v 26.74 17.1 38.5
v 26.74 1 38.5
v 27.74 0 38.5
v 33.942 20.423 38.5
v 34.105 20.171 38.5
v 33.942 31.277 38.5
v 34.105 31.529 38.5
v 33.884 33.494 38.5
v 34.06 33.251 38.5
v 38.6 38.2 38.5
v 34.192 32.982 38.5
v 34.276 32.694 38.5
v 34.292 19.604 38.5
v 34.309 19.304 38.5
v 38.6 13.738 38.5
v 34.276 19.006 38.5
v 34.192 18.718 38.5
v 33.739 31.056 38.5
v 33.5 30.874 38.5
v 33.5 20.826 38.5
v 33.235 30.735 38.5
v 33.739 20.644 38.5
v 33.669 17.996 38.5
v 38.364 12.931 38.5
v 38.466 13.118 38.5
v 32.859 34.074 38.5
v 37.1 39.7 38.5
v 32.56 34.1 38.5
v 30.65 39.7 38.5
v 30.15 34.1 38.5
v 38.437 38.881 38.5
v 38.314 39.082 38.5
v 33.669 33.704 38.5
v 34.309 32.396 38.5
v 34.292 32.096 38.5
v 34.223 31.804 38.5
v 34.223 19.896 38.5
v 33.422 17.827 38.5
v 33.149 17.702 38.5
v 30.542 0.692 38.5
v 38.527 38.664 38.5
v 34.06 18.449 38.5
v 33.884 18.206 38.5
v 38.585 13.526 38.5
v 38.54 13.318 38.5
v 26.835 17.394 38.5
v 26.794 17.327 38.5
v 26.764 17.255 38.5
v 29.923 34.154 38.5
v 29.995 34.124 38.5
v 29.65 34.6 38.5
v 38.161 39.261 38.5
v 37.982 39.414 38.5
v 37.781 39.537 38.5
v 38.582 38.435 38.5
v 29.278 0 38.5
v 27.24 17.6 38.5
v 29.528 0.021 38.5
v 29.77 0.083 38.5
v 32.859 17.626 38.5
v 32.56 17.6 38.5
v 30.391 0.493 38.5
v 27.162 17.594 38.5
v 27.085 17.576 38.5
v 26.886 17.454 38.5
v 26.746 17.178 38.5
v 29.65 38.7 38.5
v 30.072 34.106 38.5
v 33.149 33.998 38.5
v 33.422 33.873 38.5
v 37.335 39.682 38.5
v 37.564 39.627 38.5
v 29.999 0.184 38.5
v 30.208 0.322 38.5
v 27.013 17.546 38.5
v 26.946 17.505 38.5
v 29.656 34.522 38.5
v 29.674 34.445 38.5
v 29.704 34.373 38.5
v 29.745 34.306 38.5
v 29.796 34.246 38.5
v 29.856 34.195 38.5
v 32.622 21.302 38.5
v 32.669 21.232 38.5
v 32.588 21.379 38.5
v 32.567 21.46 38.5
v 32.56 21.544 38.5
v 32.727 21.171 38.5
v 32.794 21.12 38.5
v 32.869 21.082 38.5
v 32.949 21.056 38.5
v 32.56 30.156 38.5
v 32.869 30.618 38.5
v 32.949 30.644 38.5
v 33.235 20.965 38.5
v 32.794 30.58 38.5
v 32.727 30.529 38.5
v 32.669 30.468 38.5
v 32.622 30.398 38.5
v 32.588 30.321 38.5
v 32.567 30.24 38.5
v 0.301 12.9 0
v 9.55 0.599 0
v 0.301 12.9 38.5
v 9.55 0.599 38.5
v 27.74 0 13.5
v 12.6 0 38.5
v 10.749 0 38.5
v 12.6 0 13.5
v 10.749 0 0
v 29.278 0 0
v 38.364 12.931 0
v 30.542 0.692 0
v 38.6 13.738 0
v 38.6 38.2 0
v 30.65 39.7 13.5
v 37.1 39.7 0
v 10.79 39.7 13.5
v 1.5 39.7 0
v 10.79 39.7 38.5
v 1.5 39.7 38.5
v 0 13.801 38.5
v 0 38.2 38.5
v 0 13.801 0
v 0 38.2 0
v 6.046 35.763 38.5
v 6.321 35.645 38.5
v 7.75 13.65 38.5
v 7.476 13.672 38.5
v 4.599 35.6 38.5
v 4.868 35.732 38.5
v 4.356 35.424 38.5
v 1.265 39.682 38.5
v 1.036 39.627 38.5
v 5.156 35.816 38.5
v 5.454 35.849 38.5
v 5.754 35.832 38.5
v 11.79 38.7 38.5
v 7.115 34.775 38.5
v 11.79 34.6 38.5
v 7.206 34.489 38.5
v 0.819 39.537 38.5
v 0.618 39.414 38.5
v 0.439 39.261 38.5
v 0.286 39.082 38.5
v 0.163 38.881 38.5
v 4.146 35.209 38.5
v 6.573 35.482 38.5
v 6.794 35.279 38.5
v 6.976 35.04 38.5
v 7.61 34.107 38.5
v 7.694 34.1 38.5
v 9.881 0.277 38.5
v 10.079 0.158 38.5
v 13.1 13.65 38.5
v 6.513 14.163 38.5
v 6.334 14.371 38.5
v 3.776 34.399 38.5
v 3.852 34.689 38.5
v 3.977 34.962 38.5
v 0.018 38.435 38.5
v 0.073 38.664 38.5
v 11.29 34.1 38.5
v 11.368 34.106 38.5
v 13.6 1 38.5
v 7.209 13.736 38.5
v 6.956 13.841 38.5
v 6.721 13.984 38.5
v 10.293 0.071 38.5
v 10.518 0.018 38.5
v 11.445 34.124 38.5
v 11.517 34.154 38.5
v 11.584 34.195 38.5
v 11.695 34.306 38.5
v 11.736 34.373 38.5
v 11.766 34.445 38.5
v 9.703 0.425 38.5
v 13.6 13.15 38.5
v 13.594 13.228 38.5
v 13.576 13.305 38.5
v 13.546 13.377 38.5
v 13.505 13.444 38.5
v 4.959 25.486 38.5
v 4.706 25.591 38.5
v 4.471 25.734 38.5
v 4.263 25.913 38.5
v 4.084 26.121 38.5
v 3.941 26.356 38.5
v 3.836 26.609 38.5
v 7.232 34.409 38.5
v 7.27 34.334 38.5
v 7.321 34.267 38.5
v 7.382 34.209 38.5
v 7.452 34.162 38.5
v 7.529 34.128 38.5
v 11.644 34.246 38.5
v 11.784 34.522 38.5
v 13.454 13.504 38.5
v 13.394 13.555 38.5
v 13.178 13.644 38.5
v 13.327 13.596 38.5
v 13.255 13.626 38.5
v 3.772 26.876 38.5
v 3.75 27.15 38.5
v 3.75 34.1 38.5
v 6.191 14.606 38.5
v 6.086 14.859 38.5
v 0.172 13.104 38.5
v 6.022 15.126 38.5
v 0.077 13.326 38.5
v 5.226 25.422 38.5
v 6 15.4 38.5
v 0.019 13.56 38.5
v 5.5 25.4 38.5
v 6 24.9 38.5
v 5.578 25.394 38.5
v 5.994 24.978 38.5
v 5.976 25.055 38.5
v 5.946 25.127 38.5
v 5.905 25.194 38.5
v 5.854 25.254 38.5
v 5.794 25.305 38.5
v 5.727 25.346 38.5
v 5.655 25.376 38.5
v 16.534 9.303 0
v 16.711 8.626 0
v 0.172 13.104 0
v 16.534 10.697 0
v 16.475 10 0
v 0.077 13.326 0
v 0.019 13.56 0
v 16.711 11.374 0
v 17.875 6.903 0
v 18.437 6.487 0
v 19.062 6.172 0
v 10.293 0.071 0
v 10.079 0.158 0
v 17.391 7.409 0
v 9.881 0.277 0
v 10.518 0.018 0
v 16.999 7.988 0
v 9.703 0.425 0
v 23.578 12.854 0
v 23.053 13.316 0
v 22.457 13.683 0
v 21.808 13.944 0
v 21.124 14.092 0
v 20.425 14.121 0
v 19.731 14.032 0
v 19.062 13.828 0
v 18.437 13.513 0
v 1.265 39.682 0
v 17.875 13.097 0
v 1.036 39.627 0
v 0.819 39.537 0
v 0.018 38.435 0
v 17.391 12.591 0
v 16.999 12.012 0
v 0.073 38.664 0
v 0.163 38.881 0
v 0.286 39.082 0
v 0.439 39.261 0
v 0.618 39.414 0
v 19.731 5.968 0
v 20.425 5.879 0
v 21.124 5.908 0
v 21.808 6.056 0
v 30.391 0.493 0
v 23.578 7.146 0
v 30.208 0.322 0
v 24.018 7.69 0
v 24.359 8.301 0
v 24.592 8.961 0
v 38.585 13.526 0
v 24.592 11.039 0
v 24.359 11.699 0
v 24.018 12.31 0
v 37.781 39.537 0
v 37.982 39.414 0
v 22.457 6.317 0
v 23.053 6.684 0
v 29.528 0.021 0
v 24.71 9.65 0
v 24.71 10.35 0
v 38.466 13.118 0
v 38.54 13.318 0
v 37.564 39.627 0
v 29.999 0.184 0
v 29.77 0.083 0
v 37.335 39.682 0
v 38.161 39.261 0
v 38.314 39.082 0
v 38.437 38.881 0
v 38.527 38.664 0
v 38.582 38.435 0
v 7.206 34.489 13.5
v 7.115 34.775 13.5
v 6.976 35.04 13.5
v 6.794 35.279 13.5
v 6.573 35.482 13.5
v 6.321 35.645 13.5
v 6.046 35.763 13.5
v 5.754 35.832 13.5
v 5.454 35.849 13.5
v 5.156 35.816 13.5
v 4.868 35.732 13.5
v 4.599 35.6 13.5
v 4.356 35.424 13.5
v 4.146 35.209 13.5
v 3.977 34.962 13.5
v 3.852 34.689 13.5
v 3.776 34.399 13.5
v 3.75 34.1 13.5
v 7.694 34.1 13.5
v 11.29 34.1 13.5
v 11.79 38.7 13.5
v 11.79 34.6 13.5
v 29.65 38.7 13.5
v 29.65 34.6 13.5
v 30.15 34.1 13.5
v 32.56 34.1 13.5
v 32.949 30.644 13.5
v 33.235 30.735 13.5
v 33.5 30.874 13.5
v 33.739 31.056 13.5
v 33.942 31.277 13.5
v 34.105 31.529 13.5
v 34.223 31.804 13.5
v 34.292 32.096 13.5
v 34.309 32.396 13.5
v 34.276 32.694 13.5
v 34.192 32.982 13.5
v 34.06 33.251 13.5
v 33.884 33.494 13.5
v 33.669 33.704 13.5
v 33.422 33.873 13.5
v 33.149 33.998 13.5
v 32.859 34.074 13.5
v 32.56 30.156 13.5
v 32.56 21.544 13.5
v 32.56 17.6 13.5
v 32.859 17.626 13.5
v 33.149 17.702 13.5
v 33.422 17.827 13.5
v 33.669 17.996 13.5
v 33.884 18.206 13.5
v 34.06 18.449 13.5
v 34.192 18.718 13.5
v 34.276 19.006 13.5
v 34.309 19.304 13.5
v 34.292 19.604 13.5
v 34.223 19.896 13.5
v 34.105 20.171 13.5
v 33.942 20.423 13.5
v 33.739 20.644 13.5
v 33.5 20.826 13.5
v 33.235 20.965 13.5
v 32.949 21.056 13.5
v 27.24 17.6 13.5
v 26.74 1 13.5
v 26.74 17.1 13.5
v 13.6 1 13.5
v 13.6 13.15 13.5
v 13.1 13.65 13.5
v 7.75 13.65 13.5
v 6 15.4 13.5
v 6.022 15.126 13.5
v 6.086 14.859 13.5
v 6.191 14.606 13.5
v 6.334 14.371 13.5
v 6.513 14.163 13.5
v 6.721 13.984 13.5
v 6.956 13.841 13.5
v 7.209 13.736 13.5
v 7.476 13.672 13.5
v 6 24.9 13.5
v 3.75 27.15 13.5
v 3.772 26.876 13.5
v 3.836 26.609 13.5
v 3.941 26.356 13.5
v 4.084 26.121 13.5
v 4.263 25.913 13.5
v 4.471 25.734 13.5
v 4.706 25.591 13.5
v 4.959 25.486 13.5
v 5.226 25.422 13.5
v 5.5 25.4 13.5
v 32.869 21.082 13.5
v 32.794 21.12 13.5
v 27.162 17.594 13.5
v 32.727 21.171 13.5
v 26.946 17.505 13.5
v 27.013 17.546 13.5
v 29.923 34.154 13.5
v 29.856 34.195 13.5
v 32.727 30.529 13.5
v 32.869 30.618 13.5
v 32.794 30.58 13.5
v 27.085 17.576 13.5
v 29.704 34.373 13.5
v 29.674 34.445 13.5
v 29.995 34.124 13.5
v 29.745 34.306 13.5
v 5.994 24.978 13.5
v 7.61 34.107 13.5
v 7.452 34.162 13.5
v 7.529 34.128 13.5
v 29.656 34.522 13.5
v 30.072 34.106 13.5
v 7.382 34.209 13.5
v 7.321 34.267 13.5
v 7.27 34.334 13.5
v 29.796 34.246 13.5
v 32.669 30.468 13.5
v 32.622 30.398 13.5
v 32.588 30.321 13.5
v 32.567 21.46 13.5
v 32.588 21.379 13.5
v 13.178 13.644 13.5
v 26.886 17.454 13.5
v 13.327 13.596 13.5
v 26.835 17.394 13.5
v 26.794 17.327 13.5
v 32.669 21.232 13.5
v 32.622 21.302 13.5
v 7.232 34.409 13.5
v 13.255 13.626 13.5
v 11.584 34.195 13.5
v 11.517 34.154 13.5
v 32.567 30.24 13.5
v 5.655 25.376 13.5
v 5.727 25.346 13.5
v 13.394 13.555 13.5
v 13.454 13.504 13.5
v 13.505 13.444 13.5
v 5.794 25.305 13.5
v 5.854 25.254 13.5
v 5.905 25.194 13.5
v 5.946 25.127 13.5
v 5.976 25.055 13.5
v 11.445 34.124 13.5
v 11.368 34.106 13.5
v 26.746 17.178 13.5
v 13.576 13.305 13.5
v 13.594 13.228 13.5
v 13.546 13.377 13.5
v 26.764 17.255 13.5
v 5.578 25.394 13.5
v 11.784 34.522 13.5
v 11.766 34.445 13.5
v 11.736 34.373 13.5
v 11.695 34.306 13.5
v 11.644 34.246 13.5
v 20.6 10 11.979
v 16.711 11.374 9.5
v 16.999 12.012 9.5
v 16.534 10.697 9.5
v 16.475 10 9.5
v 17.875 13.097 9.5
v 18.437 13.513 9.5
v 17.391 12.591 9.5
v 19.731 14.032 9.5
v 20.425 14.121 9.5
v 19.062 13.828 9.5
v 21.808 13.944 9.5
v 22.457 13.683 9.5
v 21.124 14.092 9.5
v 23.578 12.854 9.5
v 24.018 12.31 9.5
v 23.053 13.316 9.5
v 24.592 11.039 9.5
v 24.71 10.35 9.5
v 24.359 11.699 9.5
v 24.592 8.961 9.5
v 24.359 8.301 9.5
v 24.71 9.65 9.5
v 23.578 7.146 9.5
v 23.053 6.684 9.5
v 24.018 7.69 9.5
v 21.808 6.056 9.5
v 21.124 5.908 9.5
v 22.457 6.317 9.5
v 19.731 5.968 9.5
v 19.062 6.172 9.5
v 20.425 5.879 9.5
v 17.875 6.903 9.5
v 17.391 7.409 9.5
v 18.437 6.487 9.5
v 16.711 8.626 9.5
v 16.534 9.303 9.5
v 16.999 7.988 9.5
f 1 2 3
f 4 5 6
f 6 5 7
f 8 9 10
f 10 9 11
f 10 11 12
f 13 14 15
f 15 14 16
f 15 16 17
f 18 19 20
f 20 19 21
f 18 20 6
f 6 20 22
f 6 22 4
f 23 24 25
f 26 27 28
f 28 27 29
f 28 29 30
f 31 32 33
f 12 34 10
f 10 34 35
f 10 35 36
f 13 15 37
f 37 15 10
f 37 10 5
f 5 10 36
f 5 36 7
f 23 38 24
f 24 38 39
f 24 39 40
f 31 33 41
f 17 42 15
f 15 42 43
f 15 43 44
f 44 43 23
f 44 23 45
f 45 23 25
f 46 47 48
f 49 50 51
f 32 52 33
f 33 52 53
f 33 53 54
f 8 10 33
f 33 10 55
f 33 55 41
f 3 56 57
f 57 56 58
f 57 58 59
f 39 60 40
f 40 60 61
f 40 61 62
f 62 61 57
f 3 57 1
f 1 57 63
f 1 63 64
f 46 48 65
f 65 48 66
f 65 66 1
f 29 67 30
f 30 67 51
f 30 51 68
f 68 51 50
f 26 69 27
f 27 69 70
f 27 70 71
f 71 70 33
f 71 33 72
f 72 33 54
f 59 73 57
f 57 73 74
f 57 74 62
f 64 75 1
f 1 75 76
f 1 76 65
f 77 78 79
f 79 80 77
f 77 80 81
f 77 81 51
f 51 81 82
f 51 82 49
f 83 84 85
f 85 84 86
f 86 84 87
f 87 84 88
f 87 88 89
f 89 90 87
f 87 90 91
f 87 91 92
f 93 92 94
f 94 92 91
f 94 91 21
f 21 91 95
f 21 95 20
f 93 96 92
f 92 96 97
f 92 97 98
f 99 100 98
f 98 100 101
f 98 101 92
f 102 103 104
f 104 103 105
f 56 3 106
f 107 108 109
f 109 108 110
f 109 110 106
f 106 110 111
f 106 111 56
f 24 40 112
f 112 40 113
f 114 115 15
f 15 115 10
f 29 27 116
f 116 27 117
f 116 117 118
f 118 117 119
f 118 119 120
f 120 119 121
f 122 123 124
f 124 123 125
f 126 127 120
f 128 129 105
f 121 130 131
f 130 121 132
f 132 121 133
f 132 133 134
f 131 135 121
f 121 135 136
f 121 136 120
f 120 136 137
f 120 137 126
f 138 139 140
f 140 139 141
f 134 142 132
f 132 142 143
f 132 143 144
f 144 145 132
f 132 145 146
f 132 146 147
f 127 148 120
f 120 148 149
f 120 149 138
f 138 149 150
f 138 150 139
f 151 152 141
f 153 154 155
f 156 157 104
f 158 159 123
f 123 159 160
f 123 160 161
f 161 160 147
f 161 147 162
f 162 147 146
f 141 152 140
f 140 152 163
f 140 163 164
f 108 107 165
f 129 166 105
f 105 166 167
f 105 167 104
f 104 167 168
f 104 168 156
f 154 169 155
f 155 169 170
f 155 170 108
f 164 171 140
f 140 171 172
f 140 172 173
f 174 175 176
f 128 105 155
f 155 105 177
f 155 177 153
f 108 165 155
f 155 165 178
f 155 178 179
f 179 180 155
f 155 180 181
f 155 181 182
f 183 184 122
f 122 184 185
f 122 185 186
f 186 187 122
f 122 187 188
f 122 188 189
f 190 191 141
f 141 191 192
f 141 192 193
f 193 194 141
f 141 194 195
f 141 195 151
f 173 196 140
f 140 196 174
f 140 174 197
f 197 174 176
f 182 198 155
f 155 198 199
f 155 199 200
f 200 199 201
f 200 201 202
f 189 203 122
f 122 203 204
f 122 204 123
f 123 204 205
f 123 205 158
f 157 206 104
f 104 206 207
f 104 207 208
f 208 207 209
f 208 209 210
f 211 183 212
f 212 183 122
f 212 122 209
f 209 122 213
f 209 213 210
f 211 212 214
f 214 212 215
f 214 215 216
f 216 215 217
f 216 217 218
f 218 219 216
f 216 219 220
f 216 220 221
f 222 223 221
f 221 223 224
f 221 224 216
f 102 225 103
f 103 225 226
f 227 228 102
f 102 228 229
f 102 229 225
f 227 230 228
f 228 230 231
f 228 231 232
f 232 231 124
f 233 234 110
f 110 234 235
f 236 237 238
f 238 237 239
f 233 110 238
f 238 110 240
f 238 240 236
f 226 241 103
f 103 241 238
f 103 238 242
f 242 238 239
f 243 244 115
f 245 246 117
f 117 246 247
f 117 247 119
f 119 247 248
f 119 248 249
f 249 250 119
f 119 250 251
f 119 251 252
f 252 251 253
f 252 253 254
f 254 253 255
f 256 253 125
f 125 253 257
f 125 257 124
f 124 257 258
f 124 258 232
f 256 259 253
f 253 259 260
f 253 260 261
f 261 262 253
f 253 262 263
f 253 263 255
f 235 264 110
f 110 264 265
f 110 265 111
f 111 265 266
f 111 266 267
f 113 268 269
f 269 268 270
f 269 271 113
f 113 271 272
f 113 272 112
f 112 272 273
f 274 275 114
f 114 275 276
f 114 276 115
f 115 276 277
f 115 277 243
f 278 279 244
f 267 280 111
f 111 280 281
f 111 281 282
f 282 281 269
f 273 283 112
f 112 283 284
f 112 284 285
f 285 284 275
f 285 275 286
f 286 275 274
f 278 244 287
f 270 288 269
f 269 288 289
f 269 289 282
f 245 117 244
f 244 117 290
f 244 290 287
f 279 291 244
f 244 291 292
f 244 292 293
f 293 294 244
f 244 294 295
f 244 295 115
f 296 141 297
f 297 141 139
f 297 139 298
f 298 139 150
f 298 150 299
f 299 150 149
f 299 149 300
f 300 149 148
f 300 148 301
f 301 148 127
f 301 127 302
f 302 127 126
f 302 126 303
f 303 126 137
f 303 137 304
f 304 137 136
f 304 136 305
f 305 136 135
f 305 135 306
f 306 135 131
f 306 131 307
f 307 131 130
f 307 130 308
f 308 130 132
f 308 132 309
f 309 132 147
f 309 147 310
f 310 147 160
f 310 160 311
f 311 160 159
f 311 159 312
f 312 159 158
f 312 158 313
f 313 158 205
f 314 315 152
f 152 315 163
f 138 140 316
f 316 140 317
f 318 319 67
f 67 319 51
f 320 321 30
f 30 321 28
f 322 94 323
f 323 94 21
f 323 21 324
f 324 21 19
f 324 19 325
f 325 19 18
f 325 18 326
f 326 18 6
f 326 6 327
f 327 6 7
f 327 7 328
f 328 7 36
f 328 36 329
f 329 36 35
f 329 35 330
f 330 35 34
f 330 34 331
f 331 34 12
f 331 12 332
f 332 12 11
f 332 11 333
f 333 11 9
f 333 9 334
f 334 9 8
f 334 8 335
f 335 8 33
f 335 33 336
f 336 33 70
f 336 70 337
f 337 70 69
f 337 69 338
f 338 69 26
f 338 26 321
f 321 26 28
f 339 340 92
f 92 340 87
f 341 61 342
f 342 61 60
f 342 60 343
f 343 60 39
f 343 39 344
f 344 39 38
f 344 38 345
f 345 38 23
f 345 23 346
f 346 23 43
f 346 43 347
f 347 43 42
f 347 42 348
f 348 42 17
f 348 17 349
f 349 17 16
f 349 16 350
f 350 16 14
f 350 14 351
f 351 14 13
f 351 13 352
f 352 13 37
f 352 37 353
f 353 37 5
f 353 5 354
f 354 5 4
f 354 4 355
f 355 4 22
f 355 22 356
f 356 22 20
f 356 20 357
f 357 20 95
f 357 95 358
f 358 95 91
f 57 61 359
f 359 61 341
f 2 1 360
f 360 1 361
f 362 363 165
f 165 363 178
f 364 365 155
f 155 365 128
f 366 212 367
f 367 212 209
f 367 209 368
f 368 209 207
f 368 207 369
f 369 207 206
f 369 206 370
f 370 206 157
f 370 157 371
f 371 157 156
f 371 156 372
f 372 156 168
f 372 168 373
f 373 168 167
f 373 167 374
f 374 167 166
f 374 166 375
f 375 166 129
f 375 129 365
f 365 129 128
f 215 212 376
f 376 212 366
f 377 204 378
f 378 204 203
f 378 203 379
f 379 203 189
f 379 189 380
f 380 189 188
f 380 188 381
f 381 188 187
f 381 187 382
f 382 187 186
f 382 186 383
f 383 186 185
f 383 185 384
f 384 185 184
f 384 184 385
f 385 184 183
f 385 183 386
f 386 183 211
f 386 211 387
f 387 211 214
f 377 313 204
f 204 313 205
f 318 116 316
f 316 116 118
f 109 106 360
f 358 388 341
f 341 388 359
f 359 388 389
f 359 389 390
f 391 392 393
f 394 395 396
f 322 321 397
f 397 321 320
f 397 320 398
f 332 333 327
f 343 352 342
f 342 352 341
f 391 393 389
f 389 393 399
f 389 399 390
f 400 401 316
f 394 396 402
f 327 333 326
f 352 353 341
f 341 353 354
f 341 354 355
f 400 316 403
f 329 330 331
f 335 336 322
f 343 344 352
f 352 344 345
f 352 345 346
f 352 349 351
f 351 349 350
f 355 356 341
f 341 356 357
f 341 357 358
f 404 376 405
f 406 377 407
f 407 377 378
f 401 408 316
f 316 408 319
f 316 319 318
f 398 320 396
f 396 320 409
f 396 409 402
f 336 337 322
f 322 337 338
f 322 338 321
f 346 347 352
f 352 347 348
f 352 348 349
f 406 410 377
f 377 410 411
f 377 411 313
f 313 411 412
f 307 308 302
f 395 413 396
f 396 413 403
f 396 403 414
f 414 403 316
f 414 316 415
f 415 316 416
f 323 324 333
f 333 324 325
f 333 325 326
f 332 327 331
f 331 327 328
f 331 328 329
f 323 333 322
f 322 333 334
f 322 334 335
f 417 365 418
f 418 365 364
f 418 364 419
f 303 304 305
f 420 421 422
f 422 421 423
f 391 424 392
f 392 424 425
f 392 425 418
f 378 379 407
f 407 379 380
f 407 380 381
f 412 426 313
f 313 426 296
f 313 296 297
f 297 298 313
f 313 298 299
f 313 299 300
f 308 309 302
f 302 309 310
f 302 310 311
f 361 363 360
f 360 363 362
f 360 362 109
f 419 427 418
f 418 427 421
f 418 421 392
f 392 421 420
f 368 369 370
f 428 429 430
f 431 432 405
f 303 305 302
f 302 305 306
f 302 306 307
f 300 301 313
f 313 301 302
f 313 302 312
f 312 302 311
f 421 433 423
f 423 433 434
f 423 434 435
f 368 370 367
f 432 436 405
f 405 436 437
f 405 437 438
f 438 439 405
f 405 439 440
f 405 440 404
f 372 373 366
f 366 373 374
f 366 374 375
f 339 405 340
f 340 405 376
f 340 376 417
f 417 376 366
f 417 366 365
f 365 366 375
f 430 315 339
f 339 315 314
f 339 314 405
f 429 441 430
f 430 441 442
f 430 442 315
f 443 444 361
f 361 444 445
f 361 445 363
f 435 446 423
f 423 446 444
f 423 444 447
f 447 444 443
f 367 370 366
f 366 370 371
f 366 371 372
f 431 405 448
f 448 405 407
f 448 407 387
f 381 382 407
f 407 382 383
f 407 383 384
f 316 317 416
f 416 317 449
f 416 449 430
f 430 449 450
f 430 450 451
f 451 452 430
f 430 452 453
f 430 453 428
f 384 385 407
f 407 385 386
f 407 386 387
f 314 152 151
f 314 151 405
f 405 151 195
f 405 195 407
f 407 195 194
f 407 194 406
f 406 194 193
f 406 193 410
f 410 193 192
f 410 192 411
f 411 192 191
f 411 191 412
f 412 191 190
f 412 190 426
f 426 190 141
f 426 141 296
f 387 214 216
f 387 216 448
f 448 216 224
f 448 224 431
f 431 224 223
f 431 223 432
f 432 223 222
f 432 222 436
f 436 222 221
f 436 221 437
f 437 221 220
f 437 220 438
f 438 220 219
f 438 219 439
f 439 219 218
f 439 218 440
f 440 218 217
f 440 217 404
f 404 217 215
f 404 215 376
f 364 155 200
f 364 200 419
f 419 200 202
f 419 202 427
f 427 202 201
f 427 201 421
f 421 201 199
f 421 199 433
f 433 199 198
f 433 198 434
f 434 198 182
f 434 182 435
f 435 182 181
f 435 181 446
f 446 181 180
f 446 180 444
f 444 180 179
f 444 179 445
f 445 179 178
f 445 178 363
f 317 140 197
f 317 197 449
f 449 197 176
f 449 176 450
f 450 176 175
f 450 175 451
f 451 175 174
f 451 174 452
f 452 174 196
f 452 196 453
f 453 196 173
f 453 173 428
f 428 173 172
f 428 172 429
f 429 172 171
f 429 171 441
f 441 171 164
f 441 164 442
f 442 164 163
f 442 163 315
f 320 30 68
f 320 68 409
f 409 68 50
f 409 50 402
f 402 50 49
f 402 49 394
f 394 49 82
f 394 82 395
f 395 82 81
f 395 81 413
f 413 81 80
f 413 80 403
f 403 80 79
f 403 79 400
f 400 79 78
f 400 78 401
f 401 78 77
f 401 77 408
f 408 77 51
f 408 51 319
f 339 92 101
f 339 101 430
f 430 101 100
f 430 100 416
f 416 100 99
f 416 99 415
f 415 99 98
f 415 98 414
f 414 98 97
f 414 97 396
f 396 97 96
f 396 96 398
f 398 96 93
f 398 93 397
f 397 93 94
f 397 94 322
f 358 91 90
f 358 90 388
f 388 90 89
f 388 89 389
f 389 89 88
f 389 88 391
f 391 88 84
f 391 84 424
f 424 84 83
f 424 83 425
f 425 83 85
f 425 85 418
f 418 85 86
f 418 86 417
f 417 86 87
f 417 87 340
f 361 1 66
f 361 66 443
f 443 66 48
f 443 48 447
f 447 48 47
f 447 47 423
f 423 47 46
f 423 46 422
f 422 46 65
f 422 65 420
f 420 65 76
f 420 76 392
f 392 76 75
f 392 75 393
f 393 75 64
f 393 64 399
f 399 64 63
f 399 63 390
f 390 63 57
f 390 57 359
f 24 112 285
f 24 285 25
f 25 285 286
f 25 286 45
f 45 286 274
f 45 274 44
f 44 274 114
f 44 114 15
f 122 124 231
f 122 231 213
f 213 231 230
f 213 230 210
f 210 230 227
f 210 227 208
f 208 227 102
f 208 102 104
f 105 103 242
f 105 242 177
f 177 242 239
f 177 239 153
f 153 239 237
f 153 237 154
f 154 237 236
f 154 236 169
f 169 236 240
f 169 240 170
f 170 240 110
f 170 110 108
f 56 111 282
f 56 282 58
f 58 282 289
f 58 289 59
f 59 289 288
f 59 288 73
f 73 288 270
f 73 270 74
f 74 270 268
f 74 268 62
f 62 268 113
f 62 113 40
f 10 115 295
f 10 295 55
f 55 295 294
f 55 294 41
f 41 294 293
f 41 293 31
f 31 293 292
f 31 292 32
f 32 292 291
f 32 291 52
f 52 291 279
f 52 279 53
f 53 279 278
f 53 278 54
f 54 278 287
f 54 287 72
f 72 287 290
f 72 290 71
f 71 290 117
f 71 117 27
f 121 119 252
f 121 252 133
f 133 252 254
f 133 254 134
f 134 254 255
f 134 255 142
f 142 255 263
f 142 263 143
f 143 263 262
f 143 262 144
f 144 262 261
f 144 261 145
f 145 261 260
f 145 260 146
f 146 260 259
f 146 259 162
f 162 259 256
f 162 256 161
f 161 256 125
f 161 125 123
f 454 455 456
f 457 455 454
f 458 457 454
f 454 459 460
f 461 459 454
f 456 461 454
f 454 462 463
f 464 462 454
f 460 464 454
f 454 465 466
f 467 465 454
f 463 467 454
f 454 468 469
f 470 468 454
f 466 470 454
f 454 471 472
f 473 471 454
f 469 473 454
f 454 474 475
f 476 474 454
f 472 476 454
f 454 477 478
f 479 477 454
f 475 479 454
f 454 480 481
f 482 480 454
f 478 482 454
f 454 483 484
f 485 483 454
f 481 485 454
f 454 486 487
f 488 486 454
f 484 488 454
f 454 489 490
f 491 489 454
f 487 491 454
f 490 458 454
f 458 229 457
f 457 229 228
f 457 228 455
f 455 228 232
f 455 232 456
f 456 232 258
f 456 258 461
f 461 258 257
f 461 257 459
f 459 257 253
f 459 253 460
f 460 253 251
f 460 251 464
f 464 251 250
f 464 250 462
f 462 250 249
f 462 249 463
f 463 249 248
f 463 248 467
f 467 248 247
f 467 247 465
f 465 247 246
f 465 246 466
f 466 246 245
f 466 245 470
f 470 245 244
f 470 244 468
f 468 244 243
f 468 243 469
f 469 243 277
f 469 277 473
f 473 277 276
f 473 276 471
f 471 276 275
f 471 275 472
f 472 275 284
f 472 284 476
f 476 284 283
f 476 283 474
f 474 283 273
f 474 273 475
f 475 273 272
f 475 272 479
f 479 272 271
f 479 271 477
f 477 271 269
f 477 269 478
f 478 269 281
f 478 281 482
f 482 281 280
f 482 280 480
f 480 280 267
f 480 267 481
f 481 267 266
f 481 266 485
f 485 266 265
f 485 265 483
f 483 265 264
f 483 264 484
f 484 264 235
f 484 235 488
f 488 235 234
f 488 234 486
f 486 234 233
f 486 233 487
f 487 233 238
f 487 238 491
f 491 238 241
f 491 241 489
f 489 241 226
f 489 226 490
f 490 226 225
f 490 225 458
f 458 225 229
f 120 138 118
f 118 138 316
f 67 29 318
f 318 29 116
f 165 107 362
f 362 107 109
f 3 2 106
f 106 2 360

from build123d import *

# Parameters (mm, degrees)
SALIENTE_EXTRUIR1_DEPTH                      = 38.5
CORTAR_EXTRUIR1_DEPTH                        = 25
REDONDEO2_R                                  = 0.5
REDONDEO3_R                                  = 1.5
PERFORADOR_PARA_ROSCAR_HELICOIL_DE_M81_D     = 8.25
PERFORADOR_PARA_ROSCAR_HELICOIL_DE_M81_DEPTH = 9.5
PERFORADOR_PARA_ROSCAR_HELICOIL_DE_M81_TIP   = 2.478550053
CHAFL_N1_SIZE                                = 1


with BuildPart() as part:
    # Croquis1 → Saliente-Extruir1 (new body)
    with BuildSketch(Plane.XY):
        Polygon((0, 13.3), (0, 39.7), (38.6, 39.7), (38.6, 13.3), (30.1, 0), (10, 0), align=None)
    extrude(amount=SALIENTE_EXTRUIR1_DEPTH)

    # Croquis2 → Cortar-Extruir1 (cut)
    with BuildSketch(Plane.XY.offset(38.5)):
        with BuildLine():
            Line((29.65, 39.7), (29.65, 34.1))
            Line((29.65, 34.1), (32.56, 34.1))
            ThreePointArc((32.56, 34.1), (34.31, 32.35), (32.56, 30.6))
            Line((32.56, 30.6), (32.56, 21.1))
            ThreePointArc((32.56, 21.1), (34.31, 19.35), (32.56, 17.6))
            Line((32.56, 17.6), (26.74, 17.6))
            Line((26.74, 17.6), (26.74, 0))
            Line((26.74, 0), (13.6, 0))
            Line((13.6, 0), (13.6, 13.65))
            Line((13.6, 13.65), (7.75, 13.65))
            ThreePointArc((7.75, 13.65), (6.512563133, 14.162563133), (6, 15.4))
            Line((6, 15.4), (6, 25.4))
            Line((6, 25.4), (5.5, 25.4))
            ThreePointArc((5.5, 25.4), (4.262563133, 25.912563133), (3.75, 27.15))
            Line((3.75, 27.15), (3.75, 34.1))
            ThreePointArc((3.75, 34.1), (5.5, 35.85), (7.25, 34.1))
            Line((7.25, 34.1), (11.79, 34.1))
            Line((11.79, 34.1), (11.79, 39.7))
            Line((11.79, 39.7), (29.65, 39.7))
        make_face()
    extrude(amount=-CORTAR_EXTRUIR1_DEPTH, mode=Mode.SUBTRACT)

    # Redondeo2
    redondeo2_edges = [part.edges().sort_by_distance(p)[0] for p in [
        (13.6, 13.65, 26),
        (11.79, 34.1, 26),
        (29.65, 34.1, 26),
        (32.56, 30.6, 26),
        (32.56, 21.1, 26),
        (26.74, 17.6, 26),
        (7.25, 34.1, 26),
        (6, 25.4, 26),
    ]]
    fillet(redondeo2_edges, radius=REDONDEO2_R - 0.0001)  # a hair under: the kernel refuses the full size

    # Redondeo3
    redondeo3_edges = [part.edges().sort_by_distance(p)[0] for p in [
        (0, 13.3, 19.25),
        (0, 39.7, 19.25),
        (38.6, 39.7, 19.25),
        (38.6, 13.3, 19.25),
        (30.1, 0, 19.25),
        (10, 0, 19.25),
    ]]
    fillet(redondeo3_edges, radius=REDONDEO3_R)

    # Perforador para roscar Helicoil de M81
    with Locations(Plane(origin=(0, 0, 0), x_dir=(-1, 0, 0), z_dir=(0, 0, -1))):
        with Locations((-20.6, 10)):
            Hole(PERFORADOR_PARA_ROSCAR_HELICOIL_DE_M81_D / 2, depth=PERFORADOR_PARA_ROSCAR_HELICOIL_DE_M81_DEPTH)
            with Locations((0, 0, -(PERFORADOR_PARA_ROSCAR_HELICOIL_DE_M81_DEPTH + PERFORADOR_PARA_ROSCAR_HELICOIL_DE_M81_TIP / 2))):  # 118° drill point
                Cone(0, PERFORADOR_PARA_ROSCAR_HELICOIL_DE_M81_D / 2, PERFORADOR_PARA_ROSCAR_HELICOIL_DE_M81_TIP, mode=Mode.SUBTRACT)

    # Chaflán1
    chafl_n1_edges = [part.edges().sort_by_distance(p)[0] for p in [
        (11.79, 39.7, 26),
        (29.65, 39.7, 26),
        (26.74, 0, 26),
        (13.6, 0, 26),
    ]]
    chamfer(chafl_n1_edges, length=CHAFL_N1_SIZE)


solid = part.part
